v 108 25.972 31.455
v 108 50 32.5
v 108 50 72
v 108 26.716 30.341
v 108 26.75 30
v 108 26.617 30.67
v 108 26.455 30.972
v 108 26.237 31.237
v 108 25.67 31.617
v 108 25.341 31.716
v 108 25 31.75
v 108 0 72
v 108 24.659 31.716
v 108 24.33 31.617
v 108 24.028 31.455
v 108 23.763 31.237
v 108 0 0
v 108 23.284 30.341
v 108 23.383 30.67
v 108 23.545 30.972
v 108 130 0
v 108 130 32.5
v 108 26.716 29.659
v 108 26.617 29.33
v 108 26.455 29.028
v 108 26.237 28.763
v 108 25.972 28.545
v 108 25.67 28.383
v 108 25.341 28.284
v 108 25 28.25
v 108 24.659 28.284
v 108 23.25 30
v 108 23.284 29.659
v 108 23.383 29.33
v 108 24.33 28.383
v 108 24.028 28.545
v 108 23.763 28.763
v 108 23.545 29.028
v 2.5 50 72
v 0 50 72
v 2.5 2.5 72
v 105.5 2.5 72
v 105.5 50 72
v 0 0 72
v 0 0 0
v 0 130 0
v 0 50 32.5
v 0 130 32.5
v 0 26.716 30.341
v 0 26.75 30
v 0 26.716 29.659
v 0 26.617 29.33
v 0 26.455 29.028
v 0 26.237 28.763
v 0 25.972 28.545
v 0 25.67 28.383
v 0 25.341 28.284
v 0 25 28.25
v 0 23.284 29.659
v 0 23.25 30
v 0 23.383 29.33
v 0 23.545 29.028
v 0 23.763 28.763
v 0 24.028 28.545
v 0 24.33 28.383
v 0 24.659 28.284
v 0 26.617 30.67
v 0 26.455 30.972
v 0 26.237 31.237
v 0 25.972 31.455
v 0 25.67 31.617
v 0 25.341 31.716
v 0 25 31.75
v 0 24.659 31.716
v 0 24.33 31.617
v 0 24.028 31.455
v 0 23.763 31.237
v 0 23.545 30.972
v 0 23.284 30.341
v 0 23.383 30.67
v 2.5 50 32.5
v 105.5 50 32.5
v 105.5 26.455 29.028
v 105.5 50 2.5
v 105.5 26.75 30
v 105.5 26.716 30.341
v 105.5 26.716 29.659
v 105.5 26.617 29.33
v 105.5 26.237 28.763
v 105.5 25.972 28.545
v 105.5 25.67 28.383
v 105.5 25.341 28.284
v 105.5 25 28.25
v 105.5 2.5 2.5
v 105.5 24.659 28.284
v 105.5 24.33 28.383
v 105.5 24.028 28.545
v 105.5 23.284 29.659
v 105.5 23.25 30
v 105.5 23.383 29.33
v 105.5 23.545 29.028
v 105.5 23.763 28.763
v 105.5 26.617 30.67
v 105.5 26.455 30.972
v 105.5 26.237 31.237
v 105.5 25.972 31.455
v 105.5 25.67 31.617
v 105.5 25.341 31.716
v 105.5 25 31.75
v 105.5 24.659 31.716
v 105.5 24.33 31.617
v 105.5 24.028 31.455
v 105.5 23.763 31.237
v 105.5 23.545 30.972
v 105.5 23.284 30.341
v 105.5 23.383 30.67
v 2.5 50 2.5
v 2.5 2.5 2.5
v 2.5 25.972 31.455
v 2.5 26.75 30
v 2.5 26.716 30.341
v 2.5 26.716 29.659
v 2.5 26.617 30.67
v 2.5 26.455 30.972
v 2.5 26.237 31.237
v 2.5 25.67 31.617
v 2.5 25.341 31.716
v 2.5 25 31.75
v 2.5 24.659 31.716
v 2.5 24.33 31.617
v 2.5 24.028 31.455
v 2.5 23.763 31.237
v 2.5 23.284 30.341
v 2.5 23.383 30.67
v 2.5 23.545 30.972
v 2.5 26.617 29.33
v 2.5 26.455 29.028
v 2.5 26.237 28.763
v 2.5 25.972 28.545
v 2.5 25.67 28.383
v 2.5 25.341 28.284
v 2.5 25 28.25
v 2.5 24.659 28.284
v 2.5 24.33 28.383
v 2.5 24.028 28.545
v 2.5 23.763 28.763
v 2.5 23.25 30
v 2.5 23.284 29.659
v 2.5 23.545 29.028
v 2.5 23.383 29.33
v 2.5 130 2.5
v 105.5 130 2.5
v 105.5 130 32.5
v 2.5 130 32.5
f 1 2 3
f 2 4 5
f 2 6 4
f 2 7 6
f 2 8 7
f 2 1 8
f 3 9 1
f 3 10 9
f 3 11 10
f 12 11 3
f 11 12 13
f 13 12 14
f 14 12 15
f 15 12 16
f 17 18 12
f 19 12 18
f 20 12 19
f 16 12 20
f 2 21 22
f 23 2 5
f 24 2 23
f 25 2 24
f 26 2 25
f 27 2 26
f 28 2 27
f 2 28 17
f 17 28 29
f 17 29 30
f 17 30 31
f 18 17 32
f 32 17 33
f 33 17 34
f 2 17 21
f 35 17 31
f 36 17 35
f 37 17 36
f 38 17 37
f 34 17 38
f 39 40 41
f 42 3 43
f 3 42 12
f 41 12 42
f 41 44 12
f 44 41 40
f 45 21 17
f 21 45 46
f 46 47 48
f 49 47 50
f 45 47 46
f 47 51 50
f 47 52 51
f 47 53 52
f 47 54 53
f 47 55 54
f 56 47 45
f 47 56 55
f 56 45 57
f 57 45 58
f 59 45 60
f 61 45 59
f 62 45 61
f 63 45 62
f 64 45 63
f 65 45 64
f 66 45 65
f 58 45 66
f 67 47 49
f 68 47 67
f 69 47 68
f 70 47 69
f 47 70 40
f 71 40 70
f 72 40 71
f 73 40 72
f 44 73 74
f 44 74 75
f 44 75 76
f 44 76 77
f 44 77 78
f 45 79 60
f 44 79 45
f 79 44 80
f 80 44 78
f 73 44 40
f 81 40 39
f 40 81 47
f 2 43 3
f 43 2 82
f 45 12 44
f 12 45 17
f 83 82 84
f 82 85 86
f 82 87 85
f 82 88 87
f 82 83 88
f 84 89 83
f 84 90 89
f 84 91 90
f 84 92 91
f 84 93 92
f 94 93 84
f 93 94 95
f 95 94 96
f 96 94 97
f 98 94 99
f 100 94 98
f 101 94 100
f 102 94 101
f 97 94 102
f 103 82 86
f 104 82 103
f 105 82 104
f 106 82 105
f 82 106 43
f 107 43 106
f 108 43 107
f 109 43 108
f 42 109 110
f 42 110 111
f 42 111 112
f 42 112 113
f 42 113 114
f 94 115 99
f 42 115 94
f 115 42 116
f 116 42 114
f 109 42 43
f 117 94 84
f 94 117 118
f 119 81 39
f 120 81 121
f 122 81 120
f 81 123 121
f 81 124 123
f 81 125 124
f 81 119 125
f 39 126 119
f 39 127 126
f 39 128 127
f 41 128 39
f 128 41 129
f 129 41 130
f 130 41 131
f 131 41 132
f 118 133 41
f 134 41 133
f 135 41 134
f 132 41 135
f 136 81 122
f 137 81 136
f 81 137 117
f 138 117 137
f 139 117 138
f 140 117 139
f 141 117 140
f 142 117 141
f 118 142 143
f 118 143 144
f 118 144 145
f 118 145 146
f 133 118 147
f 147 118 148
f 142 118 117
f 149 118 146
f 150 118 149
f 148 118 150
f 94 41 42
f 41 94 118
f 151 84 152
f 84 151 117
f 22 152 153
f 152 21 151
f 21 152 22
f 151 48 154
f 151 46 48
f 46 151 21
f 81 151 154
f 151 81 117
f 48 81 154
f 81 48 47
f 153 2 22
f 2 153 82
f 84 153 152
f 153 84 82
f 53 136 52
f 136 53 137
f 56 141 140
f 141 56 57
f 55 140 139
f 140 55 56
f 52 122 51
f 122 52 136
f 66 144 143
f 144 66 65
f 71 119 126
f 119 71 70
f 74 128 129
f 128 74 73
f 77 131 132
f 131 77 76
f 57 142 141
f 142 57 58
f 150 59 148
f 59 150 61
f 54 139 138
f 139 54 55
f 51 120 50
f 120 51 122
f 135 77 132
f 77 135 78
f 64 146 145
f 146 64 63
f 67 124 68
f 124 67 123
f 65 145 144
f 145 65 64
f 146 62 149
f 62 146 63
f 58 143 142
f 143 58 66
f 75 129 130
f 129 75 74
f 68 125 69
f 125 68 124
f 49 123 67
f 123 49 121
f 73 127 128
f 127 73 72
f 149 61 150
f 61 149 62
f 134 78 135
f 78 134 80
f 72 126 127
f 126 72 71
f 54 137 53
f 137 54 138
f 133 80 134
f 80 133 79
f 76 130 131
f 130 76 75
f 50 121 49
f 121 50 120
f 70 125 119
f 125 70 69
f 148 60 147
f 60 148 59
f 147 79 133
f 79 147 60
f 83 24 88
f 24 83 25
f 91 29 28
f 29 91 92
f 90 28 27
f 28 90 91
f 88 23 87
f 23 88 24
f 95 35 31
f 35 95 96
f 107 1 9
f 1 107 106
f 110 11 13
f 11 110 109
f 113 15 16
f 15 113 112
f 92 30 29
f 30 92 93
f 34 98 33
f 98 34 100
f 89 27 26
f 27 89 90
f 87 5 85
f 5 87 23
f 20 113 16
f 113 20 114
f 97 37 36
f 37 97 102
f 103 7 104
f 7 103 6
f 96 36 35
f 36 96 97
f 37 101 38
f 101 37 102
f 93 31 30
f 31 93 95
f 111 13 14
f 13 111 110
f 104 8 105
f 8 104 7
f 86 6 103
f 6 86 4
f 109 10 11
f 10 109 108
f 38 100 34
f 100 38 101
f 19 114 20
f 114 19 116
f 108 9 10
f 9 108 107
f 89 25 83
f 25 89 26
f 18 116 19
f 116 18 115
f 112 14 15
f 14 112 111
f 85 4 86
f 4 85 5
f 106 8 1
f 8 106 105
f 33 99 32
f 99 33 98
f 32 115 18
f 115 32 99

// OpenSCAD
// Extensão em "L" para calha 72.0mm X 101.35mm
// Projeto: Túnel em L com fundo fechado e frente aberta para água escoar
//
// ========== DESCRIÇÃO DO MODELO ==========
// Este modelo cria uma extensão em formato "L" para calhas de drenagem.
//
// ESTRUTURA:
// 1. PERNA VERTICAL (Encaixe na calha):
//    - Encaixa diretamente na boca da calha existente
//    - Dimensões: 103mm (largura) x 50mm (profundidade) x 72mm (altura)
//    - Possui cavidade interna para inserir na calha
//    - Espessura das paredes: 2.5mm
//
// 2. PERNA HORIZONTAL (Túnel de escoamento):
//    - Forma um canal que direciona a água para frente
//    - Dimensões: 103mm (largura) x 80mm (comprimento) x 30mm (altura)
//    - FUNDO FECHADO: impede vazamento pela parte inferior
//    - TOPO ABERTO: permite limpeza e visualização do fluxo
//    - FRENTE ABERTA: água sai livremente pela extremidade
//    - Laterais fechadas para conter o fluxo
//
// FIXAÇÃO:
// - Dois buracos para parafusos (3.5mm) nas laterais
// - Permite fixação segura em paredes ou estruturas
// - Posição dos buracos configurável
//
// PARÂMETROS CONFIGURÁVEIS:
// - largura_boca: largura da calha (103mm)
// - altura_boca: altura do encaixe (72mm)
// - profundidade_encaixe: quanto entra na calha (50mm)
// - comprimento_tunel: extensão horizontal (80mm)
// - altura_tunel: altura do canal (30mm)
// - diametro_parafuso: tamanho do furo (3.5mm)
// - espessura: espessura das paredes (2.5mm)
//
// FUNCIONAMENTO:
// A água flui da calha → entra pela perna vertical → passa pelo túnel horizontal
// → sai pela frente aberta, sendo direcionada para longe da estrutura
//
// IMPRESSÃO 3D:
// - Otimizado para impressão sem suportes
// - Base plana na mesa de impressão
// - Espessura de parede adequada (2.5mm)
// =========================================

// ========== PARÂMETROS ==========
// Dimensões da boca da calha (para encaixe traseiro)
largura_boca = 103.0;  // mm (lado maior da calha)
altura_boca = 72.0; // mm (lado menor da calha)

// Espessura da parede
espessura = 2.5; // mm

// Profundidade do encaixe na calha (perna vertical do L)
profundidade_encaixe = 50; // mm - quanto entra na boca da calha

// Comprimento do túnel horizontal (perna horizontal do L)
comprimento_tunel = 80; // mm - extensão para frente

// Largura interna do túnel
largura_interna = largura_boca; // mantém a mesma largura

// Altura interna do túnel (CONFIGURÁVEL - altura do canal do L)
altura_tunel = 30; // mm - altura do canal (desacoplado das outras dimensões)

// Folga para encaixe na calha
folga = 0.5; // mm - folga em cada lado

// Parâmetros para buracos de parafuso
diametro_parafuso = 3.5; // mm - diâmetro do buraco para parafuso
posicao_parafuso_y = -25; // mm - posição do parafuso ao longo do túnel (a partir do início)
posicao_parafuso_z = 30; // mm - altura do parafuso na lateral (a partir do fundo)

// ========== CÁLCULOS ==========
// Dimensões externas do túnel
largura_externa = largura_interna + (2 * espessura);
altura_externa_tunel = altura_tunel + espessura; // altura do túnel (fundo fechado + canal)

// Altura da perna vertical (independente do túnel)
altura_perna_vertical = altura_boca; // mantém a altura da boca da calha

// ========== MODELO ==========
rotate([0, 0, 0])  // Rotaciona para posição de impressão
difference() {
    union() {
        // PERNA VERTICAL DO L (parte traseira que encaixa na calha)
        difference() {
            // Bloco externo da perna vertical
            cube([largura_externa, profundidade_encaixe, altura_perna_vertical]);
            
            // Cavidade interna da perna vertical
            translate([espessura, espessura, espessura])
                cube([largura_interna, profundidade_encaixe + 0.1, altura_perna_vertical - espessura]);
        }
        
        // PERNA HORIZONTAL DO L (túnel com frente toda aberta saindo horizontalmente)
        translate([0, profundidade_encaixe, 0]) {
            // Fundo do túnel
            cube([largura_externa, comprimento_tunel, espessura]);
            
            // Lateral esquerda
            cube([espessura, comprimento_tunel, altura_externa_tunel]);
            
            // Lateral direita
            translate([largura_externa - espessura, 0, 0])
                cube([espessura, comprimento_tunel, altura_externa_tunel]);
        }
    }
    
    // Buracos para parafusos nas laterais
    // Buraco na lateral esquerda
    translate([-0.1, profundidade_encaixe + posicao_parafuso_y, posicao_parafuso_z])
        rotate([0, 90, 0])
            cylinder(h = espessura + 0.2, d = diametro_parafuso, $fn = 32);
    
    // Buraco na lateral direita
    translate([largura_externa - espessura - 0.1, profundidade_encaixe + posicao_parafuso_y, posicao_parafuso_z])
        rotate([0, 90, 0])
            cylinder(h = espessura + 0.2, d = diametro_parafuso, $fn = 32);
}

// ========== INFORMAÇÕES ==========
echo("=================================");
echo("TÚNEL EM 'L' PARA CALHA");
echo("=================================");
echo(str("Dimensões da calha: ", largura_boca, " x ", altura_boca, " mm"));
echo(str("Profundidade encaixe (perna vertical): ", profundidade_encaixe, " mm"));
echo(str("Comprimento túnel (perna horizontal): ", comprimento_tunel, " mm"));
echo(str("Altura do túnel (canal do L): ", altura_tunel, " mm"));
echo(str("Canal interno: ", largura_interna, " x ", altura_tunel, " mm"));
echo(str("Espessura da parede: ", espessura, " mm"));
echo(str("Buracos para parafuso: diâmetro ", diametro_parafuso, "mm"));
echo("Formato: L com FUNDO FECHADO e TOPO ABERTO (tipo calha)");
echo("Água entra pela conexão com a calha e sai pela frente aberta");
echo("=================================");
